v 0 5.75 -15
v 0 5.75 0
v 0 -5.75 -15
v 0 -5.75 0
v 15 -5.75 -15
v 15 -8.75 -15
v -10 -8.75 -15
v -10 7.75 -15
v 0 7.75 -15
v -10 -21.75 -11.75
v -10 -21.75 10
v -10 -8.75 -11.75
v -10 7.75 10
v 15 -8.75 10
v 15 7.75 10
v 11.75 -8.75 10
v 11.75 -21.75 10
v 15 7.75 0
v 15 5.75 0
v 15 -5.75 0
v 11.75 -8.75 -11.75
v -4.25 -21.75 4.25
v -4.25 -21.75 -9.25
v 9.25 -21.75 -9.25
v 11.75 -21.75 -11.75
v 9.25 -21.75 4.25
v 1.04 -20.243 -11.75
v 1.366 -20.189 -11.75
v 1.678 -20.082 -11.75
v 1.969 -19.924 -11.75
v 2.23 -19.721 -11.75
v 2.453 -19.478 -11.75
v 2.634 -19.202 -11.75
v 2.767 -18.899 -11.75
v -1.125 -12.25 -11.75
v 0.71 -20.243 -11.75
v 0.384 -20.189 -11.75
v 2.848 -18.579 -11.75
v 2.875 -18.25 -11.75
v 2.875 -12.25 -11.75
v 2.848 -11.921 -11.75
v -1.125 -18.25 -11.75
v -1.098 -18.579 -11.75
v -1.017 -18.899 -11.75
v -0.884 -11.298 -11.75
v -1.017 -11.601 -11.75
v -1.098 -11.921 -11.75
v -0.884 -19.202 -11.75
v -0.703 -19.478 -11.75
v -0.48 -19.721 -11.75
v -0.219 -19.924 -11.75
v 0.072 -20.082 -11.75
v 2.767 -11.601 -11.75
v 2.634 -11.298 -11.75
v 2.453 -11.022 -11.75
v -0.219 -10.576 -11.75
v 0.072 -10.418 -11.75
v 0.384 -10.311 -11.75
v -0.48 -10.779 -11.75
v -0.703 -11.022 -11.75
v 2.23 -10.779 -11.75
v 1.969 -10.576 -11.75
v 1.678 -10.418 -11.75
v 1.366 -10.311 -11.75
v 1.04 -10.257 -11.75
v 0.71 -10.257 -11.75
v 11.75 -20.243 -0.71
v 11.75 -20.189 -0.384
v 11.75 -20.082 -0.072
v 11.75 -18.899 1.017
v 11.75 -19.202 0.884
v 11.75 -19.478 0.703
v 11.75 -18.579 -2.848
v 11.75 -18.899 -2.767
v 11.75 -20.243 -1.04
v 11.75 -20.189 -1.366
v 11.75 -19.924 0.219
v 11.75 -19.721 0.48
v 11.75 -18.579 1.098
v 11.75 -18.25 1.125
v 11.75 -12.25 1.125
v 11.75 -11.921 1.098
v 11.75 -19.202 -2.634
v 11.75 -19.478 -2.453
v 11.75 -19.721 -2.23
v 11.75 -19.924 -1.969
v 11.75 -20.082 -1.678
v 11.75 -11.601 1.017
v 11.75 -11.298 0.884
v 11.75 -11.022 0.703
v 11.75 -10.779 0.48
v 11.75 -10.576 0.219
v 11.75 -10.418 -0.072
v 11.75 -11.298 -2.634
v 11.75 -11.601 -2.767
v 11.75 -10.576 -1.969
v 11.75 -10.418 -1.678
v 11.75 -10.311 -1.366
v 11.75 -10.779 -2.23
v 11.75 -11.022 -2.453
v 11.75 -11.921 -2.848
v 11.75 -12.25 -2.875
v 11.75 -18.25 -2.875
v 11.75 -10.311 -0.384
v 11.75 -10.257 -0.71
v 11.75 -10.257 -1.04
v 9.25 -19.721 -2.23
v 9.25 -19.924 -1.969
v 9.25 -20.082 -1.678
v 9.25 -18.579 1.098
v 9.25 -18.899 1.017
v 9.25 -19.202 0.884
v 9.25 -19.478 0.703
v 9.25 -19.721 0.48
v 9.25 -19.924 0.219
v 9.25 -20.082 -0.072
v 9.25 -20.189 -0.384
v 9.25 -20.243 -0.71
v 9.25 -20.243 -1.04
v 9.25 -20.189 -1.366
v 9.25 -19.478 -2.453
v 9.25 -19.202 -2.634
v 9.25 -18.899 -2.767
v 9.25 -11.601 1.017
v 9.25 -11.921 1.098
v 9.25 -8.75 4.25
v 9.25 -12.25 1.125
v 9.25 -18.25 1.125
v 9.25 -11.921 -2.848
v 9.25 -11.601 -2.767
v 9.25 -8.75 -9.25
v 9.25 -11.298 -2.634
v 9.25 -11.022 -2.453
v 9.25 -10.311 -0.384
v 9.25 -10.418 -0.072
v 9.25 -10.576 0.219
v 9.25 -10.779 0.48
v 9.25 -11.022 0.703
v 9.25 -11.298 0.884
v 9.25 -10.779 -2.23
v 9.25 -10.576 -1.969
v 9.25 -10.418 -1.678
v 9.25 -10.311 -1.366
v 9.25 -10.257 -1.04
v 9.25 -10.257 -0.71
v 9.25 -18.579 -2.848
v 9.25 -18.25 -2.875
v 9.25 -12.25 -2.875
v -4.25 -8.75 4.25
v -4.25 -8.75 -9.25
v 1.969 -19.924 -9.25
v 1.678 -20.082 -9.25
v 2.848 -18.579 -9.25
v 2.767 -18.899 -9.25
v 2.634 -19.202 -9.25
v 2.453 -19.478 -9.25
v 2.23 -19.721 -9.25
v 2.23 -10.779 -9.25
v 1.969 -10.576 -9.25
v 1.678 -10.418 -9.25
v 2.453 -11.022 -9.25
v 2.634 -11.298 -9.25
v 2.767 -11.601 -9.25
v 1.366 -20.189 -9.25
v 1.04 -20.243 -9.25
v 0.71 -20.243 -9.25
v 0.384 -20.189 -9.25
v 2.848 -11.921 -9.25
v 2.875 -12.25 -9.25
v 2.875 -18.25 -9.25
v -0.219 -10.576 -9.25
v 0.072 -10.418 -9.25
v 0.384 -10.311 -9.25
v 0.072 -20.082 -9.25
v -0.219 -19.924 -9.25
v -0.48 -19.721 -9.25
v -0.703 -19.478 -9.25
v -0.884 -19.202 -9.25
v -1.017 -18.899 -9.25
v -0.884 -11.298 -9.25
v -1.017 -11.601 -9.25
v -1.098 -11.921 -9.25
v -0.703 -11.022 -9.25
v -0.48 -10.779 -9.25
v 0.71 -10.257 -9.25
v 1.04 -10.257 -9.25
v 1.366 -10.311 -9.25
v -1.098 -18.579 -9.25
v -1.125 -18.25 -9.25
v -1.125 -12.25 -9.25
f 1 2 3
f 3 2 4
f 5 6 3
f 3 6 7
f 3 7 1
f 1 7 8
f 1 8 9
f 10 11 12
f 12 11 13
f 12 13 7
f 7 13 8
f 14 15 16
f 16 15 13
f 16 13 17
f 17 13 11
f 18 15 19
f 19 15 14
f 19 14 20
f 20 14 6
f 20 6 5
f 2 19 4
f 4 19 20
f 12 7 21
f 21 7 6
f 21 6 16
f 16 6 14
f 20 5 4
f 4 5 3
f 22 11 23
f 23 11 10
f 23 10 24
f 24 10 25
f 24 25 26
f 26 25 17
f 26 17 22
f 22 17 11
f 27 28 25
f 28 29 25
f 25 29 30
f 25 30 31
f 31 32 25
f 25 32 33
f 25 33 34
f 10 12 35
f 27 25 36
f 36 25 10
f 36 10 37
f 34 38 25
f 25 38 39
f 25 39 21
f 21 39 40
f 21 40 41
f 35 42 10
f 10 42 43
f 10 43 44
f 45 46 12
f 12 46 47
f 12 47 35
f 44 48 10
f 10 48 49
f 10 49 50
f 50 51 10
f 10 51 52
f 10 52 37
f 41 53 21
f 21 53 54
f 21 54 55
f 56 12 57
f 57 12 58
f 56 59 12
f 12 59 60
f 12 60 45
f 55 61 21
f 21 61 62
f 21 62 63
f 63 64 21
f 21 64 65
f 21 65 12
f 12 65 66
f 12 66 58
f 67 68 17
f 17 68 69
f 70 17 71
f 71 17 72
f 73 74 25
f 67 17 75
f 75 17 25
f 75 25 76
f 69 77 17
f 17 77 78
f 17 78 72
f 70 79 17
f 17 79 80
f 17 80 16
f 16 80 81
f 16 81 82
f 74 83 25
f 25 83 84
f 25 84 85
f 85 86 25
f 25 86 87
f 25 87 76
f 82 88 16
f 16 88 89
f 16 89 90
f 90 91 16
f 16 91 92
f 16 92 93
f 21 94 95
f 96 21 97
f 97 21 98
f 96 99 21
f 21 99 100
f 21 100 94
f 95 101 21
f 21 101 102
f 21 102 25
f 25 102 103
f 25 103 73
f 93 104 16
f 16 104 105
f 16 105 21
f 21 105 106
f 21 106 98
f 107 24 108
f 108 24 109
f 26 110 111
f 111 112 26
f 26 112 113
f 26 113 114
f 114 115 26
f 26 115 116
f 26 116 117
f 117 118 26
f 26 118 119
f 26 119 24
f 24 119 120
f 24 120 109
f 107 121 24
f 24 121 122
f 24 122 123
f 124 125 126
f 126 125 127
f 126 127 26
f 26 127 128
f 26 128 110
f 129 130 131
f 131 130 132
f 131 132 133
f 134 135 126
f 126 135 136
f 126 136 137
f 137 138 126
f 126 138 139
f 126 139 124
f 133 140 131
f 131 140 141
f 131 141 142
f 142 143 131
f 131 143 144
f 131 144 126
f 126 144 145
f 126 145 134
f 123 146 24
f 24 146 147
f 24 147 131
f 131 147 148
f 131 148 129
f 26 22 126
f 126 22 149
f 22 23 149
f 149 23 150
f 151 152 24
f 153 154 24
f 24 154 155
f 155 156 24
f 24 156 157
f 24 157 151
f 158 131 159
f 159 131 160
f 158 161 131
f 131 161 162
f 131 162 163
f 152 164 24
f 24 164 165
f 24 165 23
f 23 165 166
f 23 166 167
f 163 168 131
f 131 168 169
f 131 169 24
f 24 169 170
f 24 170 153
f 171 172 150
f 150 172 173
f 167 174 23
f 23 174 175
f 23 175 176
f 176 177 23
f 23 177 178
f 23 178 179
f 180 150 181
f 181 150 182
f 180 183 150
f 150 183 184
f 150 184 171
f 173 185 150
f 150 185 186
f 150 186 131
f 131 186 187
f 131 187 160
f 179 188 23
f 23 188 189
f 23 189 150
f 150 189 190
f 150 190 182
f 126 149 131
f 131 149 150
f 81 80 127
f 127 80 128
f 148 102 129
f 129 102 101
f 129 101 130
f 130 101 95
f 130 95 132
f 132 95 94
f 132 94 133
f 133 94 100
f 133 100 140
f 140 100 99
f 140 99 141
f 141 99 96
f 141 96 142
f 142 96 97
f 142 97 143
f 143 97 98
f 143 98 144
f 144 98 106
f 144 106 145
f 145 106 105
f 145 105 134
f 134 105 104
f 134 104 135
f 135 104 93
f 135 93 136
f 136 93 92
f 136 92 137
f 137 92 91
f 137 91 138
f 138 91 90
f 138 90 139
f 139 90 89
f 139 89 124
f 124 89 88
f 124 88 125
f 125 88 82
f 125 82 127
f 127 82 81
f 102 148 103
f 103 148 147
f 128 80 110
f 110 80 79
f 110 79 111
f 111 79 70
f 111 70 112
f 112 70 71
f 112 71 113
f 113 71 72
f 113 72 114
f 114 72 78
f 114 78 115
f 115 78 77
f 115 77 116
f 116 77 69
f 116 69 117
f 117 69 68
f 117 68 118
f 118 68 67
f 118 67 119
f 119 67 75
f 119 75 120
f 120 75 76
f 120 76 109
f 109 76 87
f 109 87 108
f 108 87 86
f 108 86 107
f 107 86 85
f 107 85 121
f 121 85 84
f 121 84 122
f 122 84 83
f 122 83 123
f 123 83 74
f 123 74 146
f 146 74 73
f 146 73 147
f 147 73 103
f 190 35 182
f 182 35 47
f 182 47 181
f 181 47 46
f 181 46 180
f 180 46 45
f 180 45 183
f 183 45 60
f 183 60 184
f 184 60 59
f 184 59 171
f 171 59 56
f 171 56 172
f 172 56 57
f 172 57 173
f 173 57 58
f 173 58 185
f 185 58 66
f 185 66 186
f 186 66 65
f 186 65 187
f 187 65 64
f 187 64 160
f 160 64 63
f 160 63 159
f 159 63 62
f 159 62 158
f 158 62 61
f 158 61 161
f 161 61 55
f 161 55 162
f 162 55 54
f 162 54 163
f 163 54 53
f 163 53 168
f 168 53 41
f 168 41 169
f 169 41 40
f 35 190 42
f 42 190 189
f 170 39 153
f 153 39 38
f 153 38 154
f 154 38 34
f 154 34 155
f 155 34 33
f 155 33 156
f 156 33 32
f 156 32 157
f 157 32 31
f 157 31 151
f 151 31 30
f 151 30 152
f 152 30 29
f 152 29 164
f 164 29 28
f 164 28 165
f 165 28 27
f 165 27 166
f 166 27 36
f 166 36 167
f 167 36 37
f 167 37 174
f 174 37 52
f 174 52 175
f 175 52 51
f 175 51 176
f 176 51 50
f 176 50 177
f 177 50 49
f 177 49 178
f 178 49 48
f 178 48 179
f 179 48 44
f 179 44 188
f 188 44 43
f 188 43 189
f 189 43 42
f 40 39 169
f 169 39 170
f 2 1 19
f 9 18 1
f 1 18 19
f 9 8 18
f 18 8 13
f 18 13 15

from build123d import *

# Parameters (mm, degrees)
SALIENTE_EXTRUIR1_DEPTH = 5.75
CROQUIS2_W              = 25
CROQUIS2_H              = 25
SALIENTE_EXTRUIR2_DEPTH = 3
CROQUIS3_W              = 21.75
CROQUIS3_H              = 21.75
CROQUIS3_W_2            = 13.5
CROQUIS3_H_2            = 13.5
SALIENTE_EXTRUIR3_DEPTH = 13
CORTAR_EXTRUIR1_DEPTH   = 13
CORTAR_EXTRUIR2_DEPTH   = 13
SALIENTE_EXTRUIR4_DEPTH = 2


with BuildPart() as part:
    # Croquis1 → Saliente-Extruir1 (new, symmetric)
    with BuildSketch(Plane(origin=(0, 0, 0), x_dir=(1, 0, 0), z_dir=(0, 1, 0))):
        Polygon((0, 0), (15, 0), (15, -10), (-10, -10), (-10, 15), (0, 15), align=None)
    extrude(amount=SALIENTE_EXTRUIR1_DEPTH, both=True)

    # Croquis2 → Saliente-Extruir2 (add)
    with BuildSketch(Plane.XZ.offset(5.75)):
        with Locations((2.5, -2.5)):
            Rectangle(CROQUIS2_W, CROQUIS2_H)
    extrude(amount=SALIENTE_EXTRUIR2_DEPTH)

    # Croquis3 → Saliente-Extruir3 (add)
    with BuildSketch(Plane.XZ.offset(8.75)):
        with Locations((0.875, -0.875)):
            Rectangle(CROQUIS3_W, CROQUIS3_H)
        with Locations((2.5, -2.5)):
            Rectangle(CROQUIS3_W_2, CROQUIS3_H_2, mode=Mode.SUBTRACT)
    extrude(amount=SALIENTE_EXTRUIR3_DEPTH)

    # Croquis4 → Cortar-Extruir1 (cut)
    with BuildSketch(Plane(origin=(11.75, 0, 0), x_dir=(0, 0, -1), z_dir=(1, 0, 0))):
        with BuildLine():
            Line((-1.125, -12.25), (-1.125, -18.25))
            ThreePointArc((-1.125, -18.25), (0.875, -20.25), (2.875, -18.25))
            Line((2.875, -18.25), (2.875, -12.25))
            ThreePointArc((2.875, -12.25), (0.875, -10.25), (-1.125, -12.25))
        make_face()
    extrude(amount=-CORTAR_EXTRUIR1_DEPTH, mode=Mode.SUBTRACT)

    # Croquis6 → Cortar-Extruir2 (cut)
    with BuildSketch(Plane(origin=(0, 0, -11.75), x_dir=(-1, 0, 0), z_dir=(0, 0, -1))):
        with BuildLine():
            Line((1.125, -12.25), (1.125, -18.25))
            ThreePointArc((1.125, -18.25), (-0.875, -20.25), (-2.875, -18.25))
            Line((-2.875, -18.25), (-2.875, -12.25))
            ThreePointArc((-2.875, -12.25), (-0.875, -10.25), (1.125, -12.25))
        make_face()
    extrude(amount=-CORTAR_EXTRUIR2_DEPTH, mode=Mode.SUBTRACT)

    # Croquis7 → Saliente-Extruir4 (add)
    with BuildSketch(Plane(origin=(0, 5.75, 0), x_dir=(1, 0, 0), z_dir=(0, 1, 0))):
        Polygon((15, 0), (0, 15), (0, 0), align=None)
        Polygon((15, 0), (0, 0), (0, 15), (-10, 15), (-10, -10), (15, -10), align=None)
    extrude(amount=SALIENTE_EXTRUIR4_DEPTH)


solid = part.part
